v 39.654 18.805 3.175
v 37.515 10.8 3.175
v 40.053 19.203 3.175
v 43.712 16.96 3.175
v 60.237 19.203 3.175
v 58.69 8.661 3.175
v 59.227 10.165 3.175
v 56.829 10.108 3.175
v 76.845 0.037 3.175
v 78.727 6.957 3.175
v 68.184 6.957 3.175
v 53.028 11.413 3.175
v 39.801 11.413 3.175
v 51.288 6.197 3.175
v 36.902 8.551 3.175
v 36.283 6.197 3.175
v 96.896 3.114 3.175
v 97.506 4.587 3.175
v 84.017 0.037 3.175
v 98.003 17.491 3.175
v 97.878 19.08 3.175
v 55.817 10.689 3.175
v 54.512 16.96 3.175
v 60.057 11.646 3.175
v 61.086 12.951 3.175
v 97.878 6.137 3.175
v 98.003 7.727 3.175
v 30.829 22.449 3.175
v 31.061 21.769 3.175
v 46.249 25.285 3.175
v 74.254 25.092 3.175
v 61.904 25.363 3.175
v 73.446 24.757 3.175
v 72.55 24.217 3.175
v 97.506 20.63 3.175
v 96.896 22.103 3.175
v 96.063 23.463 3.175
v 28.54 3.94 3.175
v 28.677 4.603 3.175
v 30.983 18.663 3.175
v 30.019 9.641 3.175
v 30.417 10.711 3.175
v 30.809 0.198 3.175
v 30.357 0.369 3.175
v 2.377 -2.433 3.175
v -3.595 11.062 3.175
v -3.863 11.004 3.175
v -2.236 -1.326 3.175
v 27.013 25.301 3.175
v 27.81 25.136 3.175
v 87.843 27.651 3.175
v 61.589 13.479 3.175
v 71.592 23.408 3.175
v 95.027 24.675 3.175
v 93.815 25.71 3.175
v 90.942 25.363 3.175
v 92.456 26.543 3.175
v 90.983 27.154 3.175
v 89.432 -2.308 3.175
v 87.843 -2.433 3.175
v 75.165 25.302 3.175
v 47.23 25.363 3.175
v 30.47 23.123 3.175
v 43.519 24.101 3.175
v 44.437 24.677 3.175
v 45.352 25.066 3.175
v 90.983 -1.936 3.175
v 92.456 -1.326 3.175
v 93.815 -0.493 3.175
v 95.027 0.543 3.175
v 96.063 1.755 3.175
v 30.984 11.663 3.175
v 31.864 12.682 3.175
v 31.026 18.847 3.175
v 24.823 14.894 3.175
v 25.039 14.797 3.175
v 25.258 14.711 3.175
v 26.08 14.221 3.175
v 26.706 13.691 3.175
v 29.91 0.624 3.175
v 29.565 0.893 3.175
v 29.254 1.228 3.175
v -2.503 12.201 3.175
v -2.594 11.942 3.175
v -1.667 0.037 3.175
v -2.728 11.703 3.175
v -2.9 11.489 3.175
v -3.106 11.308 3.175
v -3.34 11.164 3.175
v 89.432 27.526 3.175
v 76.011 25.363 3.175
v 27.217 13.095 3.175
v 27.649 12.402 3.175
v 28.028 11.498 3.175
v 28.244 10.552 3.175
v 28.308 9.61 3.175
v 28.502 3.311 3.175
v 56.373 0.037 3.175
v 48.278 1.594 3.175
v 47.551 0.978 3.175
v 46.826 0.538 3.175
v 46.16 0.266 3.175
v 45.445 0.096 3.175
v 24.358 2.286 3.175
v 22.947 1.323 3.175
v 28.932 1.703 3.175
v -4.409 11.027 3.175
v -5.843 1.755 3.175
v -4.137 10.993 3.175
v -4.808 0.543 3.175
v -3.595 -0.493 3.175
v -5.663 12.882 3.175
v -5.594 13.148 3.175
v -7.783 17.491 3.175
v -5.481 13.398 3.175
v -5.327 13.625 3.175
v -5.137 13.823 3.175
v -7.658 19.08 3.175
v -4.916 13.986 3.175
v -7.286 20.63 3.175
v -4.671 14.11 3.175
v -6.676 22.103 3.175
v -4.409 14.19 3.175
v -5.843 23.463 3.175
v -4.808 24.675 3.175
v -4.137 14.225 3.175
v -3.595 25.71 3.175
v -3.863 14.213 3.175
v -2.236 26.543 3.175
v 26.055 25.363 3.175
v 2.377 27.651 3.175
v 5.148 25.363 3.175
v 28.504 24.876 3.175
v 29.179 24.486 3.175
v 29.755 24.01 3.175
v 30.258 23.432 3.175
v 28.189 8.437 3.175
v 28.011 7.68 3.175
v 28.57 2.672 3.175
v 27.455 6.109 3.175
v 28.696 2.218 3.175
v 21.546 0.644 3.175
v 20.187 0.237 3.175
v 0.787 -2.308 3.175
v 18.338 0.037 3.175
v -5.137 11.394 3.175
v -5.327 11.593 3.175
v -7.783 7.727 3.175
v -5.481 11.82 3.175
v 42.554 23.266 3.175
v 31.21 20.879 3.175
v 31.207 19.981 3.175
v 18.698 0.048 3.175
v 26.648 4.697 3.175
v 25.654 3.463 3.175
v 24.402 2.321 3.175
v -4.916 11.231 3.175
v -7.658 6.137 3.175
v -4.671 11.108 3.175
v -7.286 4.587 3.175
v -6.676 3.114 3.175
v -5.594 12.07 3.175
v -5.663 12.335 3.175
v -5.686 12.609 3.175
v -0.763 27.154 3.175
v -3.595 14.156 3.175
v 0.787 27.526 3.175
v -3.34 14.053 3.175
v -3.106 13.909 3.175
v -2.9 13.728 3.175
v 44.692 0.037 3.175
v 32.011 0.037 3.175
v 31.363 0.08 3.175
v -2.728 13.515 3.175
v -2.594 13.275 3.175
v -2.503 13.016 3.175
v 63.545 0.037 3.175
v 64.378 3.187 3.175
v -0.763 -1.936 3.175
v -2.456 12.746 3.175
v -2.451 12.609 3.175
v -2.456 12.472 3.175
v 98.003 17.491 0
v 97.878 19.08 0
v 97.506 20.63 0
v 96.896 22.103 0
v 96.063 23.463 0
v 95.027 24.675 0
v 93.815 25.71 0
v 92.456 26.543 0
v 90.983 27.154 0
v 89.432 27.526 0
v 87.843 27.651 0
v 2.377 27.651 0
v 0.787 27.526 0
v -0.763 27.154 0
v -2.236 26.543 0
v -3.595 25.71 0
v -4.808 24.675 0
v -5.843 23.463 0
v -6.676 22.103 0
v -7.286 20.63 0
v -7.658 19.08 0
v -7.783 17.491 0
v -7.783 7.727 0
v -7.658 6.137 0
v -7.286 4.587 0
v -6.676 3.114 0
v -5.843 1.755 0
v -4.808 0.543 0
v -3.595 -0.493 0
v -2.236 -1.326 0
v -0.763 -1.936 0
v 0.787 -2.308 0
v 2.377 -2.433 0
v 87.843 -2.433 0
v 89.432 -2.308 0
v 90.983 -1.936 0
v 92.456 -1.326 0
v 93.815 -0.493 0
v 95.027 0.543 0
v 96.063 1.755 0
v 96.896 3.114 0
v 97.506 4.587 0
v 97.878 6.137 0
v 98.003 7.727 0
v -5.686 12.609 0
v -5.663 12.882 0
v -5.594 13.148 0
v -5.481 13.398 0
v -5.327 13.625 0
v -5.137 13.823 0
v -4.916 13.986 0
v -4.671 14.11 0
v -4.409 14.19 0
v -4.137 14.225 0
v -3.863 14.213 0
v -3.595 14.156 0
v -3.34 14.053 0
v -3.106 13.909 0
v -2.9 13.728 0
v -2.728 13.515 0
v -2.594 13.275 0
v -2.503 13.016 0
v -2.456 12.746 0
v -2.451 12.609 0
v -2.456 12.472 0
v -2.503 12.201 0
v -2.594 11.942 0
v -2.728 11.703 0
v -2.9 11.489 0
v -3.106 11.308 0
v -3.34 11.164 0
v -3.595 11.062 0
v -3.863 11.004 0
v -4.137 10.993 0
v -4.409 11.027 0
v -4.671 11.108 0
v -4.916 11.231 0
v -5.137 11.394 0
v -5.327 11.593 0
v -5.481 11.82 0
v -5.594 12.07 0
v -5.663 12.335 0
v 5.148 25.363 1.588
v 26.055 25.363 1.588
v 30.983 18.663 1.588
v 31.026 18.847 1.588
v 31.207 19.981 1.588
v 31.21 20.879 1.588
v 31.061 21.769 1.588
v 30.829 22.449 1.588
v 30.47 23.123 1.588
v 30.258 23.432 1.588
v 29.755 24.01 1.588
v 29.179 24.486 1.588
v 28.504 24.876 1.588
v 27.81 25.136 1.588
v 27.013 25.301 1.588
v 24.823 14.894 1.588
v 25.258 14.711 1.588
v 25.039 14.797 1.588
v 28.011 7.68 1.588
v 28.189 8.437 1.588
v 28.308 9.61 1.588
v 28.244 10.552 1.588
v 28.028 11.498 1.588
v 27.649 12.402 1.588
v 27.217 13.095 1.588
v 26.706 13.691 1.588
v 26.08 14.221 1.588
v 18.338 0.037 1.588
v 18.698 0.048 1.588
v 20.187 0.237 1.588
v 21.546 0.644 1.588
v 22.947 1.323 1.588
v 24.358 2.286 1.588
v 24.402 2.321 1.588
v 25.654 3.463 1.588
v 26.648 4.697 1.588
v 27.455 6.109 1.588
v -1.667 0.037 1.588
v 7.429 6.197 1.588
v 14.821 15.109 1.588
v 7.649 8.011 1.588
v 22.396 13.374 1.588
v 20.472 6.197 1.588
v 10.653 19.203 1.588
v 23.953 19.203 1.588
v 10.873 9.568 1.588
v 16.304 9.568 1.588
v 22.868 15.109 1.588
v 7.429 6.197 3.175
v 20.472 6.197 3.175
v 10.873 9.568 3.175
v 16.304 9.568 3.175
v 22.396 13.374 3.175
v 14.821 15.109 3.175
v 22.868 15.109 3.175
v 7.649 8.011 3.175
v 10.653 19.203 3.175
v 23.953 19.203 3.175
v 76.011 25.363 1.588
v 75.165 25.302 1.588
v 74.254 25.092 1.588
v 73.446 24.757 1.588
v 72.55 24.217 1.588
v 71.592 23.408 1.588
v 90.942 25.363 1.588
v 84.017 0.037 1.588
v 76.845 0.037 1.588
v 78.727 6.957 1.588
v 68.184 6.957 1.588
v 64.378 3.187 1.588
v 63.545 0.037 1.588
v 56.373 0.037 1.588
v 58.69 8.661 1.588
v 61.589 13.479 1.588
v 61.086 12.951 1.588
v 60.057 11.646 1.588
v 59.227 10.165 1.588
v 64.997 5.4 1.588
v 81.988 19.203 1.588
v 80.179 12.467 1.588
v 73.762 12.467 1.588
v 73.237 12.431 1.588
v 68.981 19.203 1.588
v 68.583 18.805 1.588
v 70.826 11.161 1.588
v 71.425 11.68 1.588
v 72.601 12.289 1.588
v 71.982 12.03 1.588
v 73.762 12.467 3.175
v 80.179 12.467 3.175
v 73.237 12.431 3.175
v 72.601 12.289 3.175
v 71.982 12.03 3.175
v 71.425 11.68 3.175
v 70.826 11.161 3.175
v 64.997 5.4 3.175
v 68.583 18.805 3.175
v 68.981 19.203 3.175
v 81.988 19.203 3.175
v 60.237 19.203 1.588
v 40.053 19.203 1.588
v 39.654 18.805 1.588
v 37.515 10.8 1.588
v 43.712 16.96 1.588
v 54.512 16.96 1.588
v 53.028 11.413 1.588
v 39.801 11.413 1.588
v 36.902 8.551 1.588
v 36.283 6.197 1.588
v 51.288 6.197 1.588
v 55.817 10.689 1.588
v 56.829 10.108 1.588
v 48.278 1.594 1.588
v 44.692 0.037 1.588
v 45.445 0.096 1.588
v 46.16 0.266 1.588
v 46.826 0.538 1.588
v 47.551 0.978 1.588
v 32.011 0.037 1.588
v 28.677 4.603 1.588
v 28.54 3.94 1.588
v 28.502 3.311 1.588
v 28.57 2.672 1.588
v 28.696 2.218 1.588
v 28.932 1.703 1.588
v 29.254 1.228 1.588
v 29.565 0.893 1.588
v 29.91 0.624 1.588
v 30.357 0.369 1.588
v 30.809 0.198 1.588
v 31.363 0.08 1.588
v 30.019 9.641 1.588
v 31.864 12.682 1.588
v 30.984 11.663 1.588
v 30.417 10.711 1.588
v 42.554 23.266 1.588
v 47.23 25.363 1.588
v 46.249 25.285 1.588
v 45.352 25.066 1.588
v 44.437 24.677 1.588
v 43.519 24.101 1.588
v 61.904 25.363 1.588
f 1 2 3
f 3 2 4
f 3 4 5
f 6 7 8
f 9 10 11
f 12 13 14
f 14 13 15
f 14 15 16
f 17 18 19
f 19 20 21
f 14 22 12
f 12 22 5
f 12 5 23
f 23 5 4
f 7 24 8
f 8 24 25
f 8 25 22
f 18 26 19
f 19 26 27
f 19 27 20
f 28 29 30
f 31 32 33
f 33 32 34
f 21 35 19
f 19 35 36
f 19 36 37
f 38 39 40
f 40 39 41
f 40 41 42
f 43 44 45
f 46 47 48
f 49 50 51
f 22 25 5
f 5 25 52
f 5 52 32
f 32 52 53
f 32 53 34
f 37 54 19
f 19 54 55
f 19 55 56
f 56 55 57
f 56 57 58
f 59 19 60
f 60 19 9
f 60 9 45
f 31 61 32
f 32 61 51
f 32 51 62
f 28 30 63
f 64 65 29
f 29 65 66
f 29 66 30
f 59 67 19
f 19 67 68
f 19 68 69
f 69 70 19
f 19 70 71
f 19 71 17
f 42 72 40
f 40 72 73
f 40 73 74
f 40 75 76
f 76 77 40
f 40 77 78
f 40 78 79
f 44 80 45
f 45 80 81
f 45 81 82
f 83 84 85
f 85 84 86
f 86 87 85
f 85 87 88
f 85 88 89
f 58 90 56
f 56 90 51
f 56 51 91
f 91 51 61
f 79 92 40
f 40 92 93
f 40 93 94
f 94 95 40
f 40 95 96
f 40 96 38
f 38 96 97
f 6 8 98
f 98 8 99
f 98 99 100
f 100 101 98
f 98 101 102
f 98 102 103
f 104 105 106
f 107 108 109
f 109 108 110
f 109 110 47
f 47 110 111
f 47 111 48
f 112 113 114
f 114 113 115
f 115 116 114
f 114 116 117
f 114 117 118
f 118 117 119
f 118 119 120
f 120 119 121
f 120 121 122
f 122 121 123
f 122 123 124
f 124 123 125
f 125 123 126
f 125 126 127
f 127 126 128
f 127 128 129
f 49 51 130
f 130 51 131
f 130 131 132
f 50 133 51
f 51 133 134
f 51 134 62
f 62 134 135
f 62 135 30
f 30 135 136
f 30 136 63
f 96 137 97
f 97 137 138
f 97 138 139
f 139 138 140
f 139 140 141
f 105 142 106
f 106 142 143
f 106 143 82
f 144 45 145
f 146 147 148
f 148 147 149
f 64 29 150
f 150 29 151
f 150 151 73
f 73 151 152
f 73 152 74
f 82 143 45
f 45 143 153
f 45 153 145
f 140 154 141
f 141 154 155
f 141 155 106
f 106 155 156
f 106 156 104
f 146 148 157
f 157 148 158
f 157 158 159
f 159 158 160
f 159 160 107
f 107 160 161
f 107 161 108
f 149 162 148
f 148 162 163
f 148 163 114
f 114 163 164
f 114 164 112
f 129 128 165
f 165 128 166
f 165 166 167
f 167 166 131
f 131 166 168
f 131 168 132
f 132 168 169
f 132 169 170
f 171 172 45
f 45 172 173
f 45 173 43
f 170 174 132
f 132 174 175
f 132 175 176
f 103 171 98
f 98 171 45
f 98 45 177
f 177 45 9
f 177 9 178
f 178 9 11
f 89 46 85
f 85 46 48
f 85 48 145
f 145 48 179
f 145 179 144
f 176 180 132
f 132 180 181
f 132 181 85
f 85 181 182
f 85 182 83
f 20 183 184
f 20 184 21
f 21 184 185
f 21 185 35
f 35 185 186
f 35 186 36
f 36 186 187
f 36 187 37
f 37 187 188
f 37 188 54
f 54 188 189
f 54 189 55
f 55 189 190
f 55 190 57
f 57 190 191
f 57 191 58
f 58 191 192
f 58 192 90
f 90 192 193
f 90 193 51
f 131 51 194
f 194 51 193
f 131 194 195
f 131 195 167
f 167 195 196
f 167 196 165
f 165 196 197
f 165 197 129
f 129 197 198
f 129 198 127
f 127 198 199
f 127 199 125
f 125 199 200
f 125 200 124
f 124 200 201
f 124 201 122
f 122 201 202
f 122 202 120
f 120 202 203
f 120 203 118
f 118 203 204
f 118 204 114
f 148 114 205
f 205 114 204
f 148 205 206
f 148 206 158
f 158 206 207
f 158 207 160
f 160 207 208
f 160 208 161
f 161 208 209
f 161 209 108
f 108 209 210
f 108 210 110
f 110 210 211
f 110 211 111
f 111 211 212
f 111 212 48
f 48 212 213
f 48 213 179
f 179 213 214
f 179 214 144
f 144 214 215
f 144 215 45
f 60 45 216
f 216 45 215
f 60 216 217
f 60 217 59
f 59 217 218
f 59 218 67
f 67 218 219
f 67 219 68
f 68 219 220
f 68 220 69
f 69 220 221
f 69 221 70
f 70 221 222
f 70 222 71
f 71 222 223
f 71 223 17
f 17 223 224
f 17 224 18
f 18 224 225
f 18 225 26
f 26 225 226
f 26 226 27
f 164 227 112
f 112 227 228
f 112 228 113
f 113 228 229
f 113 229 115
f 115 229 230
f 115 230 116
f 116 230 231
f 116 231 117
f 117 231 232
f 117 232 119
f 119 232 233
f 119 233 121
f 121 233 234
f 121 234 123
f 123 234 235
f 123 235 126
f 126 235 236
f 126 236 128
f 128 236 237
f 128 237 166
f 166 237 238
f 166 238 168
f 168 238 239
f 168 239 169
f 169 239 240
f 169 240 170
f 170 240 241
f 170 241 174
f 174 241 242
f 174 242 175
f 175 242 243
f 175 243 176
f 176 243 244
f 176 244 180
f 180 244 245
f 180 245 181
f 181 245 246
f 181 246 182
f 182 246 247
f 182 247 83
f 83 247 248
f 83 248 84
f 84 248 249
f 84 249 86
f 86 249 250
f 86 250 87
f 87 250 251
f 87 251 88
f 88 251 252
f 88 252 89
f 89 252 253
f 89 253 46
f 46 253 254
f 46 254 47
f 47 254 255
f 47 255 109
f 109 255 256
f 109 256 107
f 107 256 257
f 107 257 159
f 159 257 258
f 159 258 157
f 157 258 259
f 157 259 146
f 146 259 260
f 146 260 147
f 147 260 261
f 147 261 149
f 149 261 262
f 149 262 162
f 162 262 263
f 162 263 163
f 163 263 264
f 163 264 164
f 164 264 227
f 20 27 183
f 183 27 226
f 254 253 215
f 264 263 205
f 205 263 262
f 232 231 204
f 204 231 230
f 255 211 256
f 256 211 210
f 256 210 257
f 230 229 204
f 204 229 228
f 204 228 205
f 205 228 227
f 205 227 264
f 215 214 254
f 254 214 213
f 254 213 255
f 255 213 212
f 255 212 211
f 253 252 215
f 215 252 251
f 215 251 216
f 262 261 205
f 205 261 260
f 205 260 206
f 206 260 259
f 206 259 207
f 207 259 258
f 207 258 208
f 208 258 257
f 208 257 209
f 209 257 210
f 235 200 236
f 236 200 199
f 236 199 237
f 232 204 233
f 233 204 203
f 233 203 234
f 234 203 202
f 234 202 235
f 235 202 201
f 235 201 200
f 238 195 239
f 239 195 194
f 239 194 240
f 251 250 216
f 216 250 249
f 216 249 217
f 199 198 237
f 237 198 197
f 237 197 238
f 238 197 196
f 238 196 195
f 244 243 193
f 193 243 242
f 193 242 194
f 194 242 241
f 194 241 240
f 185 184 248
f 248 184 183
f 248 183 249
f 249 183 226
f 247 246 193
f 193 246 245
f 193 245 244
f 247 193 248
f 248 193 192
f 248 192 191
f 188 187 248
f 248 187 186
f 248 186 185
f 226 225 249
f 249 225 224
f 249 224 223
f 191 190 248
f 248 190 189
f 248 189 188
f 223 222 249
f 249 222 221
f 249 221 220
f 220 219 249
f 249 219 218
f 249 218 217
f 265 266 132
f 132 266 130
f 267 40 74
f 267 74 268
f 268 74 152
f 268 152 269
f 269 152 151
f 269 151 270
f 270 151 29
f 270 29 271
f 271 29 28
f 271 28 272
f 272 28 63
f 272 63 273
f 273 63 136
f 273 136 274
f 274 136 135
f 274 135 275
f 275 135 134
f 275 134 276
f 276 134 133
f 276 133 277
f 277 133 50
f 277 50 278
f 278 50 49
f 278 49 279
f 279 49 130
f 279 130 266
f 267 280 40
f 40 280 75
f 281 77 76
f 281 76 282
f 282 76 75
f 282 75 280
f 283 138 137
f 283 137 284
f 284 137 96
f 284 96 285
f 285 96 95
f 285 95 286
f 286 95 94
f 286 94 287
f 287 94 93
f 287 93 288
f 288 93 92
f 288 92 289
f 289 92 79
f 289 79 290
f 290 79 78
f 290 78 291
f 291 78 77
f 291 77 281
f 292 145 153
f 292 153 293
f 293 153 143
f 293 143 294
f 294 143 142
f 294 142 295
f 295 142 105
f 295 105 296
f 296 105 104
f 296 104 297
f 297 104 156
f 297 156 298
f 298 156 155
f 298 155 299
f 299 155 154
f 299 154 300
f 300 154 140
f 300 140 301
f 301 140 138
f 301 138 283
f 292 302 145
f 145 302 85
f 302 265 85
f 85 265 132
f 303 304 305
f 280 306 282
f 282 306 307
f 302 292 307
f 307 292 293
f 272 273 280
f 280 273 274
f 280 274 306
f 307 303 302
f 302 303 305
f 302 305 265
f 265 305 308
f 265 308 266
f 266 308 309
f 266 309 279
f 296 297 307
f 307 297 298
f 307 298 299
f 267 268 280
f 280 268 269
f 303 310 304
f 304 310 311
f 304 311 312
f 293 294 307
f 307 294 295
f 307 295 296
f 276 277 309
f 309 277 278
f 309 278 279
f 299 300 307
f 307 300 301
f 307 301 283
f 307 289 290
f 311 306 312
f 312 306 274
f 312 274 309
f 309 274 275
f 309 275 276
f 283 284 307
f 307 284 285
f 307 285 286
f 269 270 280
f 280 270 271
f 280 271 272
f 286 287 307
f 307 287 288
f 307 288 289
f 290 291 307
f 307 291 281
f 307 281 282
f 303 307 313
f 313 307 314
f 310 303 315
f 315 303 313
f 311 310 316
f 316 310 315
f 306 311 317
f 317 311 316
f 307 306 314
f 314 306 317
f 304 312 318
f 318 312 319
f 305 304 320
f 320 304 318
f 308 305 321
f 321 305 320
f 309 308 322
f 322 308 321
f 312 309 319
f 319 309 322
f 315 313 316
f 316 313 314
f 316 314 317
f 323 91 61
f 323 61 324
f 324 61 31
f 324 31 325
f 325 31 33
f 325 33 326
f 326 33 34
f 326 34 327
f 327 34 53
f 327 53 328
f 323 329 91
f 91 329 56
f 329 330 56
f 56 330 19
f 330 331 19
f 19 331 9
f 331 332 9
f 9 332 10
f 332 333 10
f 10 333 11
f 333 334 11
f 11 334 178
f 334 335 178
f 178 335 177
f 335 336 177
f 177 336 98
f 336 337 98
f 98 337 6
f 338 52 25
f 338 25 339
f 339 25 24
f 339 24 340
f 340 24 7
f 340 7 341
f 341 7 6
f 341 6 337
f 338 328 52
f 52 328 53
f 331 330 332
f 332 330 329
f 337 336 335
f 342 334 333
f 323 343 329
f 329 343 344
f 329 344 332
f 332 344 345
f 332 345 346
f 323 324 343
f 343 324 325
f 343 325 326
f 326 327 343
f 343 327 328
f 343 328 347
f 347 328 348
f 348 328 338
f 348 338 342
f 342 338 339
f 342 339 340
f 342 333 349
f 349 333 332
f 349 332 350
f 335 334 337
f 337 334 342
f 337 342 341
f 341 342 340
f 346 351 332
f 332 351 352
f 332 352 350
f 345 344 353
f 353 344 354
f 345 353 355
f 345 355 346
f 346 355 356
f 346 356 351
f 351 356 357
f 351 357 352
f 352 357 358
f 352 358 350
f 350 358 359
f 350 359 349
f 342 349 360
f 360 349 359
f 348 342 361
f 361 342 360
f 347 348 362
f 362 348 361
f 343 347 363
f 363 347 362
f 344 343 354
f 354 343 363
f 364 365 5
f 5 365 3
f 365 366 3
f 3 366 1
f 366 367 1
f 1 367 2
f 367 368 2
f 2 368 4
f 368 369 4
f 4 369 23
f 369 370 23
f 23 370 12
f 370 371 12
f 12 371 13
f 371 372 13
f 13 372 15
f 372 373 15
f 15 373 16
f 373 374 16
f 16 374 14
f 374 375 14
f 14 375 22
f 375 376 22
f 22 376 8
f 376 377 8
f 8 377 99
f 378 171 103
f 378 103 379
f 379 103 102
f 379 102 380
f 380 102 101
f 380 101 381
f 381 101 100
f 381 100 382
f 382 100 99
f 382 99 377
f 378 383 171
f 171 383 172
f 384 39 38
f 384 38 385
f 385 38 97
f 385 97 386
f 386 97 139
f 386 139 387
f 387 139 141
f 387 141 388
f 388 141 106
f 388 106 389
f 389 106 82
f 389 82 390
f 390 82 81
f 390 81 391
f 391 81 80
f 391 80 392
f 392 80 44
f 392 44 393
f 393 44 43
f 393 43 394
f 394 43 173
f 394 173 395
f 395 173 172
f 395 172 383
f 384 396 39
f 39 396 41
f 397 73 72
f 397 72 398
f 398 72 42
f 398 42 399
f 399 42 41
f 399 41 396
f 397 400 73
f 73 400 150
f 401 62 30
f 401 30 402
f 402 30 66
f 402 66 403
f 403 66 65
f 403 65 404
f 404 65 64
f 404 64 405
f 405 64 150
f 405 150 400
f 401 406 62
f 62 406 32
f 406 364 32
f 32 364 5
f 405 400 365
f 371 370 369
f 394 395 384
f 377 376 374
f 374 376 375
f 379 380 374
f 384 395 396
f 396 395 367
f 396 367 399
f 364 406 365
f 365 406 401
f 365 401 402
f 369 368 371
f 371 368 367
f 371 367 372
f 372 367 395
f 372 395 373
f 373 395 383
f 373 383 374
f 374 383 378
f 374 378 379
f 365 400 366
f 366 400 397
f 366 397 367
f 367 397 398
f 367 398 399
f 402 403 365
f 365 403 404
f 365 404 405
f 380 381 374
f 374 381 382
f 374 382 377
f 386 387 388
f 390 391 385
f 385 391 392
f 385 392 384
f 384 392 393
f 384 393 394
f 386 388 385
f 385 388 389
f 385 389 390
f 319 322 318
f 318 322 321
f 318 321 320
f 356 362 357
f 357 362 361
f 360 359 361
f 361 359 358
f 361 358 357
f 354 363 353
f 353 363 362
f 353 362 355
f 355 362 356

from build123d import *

# Parameters (mm, degrees)
SKETCH1_R           = 1.617686351
BOSS_EXTRUDE1_DEPTH = 3.175
CUT_EXTRUDE1_DEPTH  = 1.5875


with BuildPart() as part:
    # Sketch1 → Boss-Extrude1 (new body)
    with BuildSketch(Plane.XY):
        with BuildLine():
            Line((2.376512113, 27.65079512), (87.842998078, 27.65079512))
            ThreePointArc((87.842998078, 27.65079512), (95.027202975, 24.675000017), (98.002998078, 17.49079512))
            Line((98.002998078, 17.49079512), (98.002998078, 7.726780525))
            ThreePointArc((98.002998078, 7.726780525), (95.027202975, 0.542575628), (87.842998078, -2.433219475))
            Line((87.842998078, -2.433219475), (2.376512113, -2.433219475))
            ThreePointArc((2.376512113, -2.433219475), (-4.807692784, 0.542575628), (-7.783487887, 7.726780525))
            Line((-7.783487887, 7.726780525), (-7.783487887, 17.49079512))
            ThreePointArc((-7.783487887, 17.49079512), (-4.807692784, 24.675000017), (2.376512113, 27.65079512))
        make_face()
        with Locations((-4.068268159, 12.608787822)):
            Circle(SKETCH1_R, mode=Mode.SUBTRACT)
    extrude(amount=BOSS_EXTRUDE1_DEPTH)

    # Sketch2 → Cut-Extrude1 (cut)
    # profile 1 of 3: a face of its own
    with BuildSketch(Plane.XY.offset(3.175)):
        with BuildLine():
            add(Edge.make_bspline(
                [(26.055314757, 25.363302374), (26.281041178, 25.357148606), (26.720344033, 25.345172305), (27.358603179, 25.255576736), (27.954181106, 25.10565776), (28.506593472, 24.887414053), (29.01635882, 24.61026015), (29.483989025, 24.268912351), (29.909556765, 23.870244327), (30.286214231, 23.412653315), (30.607890769, 22.914633219), (30.869796512, 22.384371241), (31.05896534, 21.825349006), (31.177064683, 21.240476881), (31.238829311, 20.630578255), (31.216595671, 19.996303633), (31.140690223, 19.333888525), (31.036825384, 18.891448023), (30.983281734, 18.663364293)],
                knots=[0, 0, 0, 0, 1.104647112, 2.14983532, 3.14775057, 4.103991838, 5.04949864, 5.980264506, 6.930364641, 7.896350518, 8.873894228, 9.826455567, 10.784034957, 11.753687545, 12.741876869, 13.777217861, 14.854127416, 16, 16, 16, 16], degree=3))
            Line((30.983281734, 18.663364293), (24.823323013, 14.893993808))
            add(Edge.make_bspline(
                [(24.823323013, 14.893993808), (24.913627964, 14.852436986), (25.056727556, 14.786584956), (25.204086092, 14.731009487), (25.258452012, 14.710505676)],
                knots=[0, 0, 0, 0, 1.262127295, 2, 2, 2, 2], degree=3))
            add(Edge.make_bspline(
                [(25.258452012, 14.710505676), (25.408658011, 14.633015541), (25.70455598, 14.480364025), (26.115294044, 14.203511612), (26.494533839, 13.898795938), (26.842207753, 13.563435468), (27.152694985, 13.192982522), (27.431219321, 12.792771569), (27.67927879, 12.362334709), (27.886089668, 11.901078686), (28.060682724, 11.422012006), (28.186061, 10.924600148), (28.269482345, 10.415995768), (28.312768514, 9.893514579), (28.306836135, 9.356553203), (28.251637963, 8.806740636), (28.160254496, 8.243184587), (28.061167889, 7.870056205), (28.010773994, 7.680288958)],
                knots=[0, 0, 0, 0, 0.984435104, 1.939285714, 2.881007598, 3.817426453, 4.749903878, 5.693661681, 6.656357472, 7.640950646, 8.636494269, 9.624663586, 10.626026113, 11.637696297, 12.67668649, 13.751023199, 14.856205644, 16, 16, 16, 16], degree=3))
            add(Edge.make_bspline(
                [(28.010773994, 7.680288958), (27.934336699, 7.418635325), (27.781985703, 6.897120378), (27.483880814, 6.140182715), (27.111873403, 5.418274722), (26.680602198, 4.723985098), (26.188457087, 4.059016869), (25.632410614, 3.42464569), (25.013362966, 2.8218799), (24.336555177, 2.259555831), (23.632617641, 1.73501911), (22.90194296, 1.286167719), (22.165575056, 0.899844078), (21.419750266, 0.582322921), (20.662474561, 0.341850589), (19.896429331, 0.167011128), (19.120780451, 0.059173369), (18.599040207, 0.044186513), (18.338328173, 0.036697626)],
                knots=[0, 0, 0, 0, 0.992207688, 1.977618791, 2.956517026, 3.945270844, 4.9506118, 5.965172583, 7.01356654, 8.093011568, 9.167098768, 10.207118156, 11.211733991, 12.192594754, 13.154449955, 14.10064625, 15.050898635, 16, 16, 16, 16], degree=3))
            Line((18.338328173, 0.036697626), (-1.667120743, 0.036697626))
            Line((-1.667120743, 0.036697626), (5.148152735, 25.363302374))
            Line((5.148152735, 25.363302374), (26.055314757, 25.363302374))
        make_face()
        Polygon((20.472033024, 6.196656347), (22.396037152, 13.373663571), (16.304231166, 9.567595459), (10.872982456, 9.567595459), (7.428648091, 6.196656347), align=None, mode=Mode.SUBTRACT)
        Polygon((22.867863777, 15.108937049), (23.953065015, 19.203343653), (10.652796698, 19.203343653), (7.648833849, 8.010567595), (14.820598555, 15.108937049), align=None, mode=Mode.SUBTRACT)
    # profile 2 of 3: a face of its own
    with BuildSketch(Plane.XY.offset(3.175)):
        with BuildLine():
            Line((40.052837977, 19.203343653), (39.654406605, 18.804912281))
            Line((39.654406605, 18.804912281), (37.515459236, 10.799587203))
            Line((37.515459236, 10.799587203), (43.712115583, 16.959545924))
            Line((43.712115583, 16.959545924), (54.511702786, 16.959545924))
            Line((54.511702786, 16.959545924), (53.028070175, 11.412961816))
            Line((53.028070175, 11.412961816), (39.80119711, 11.412961816))
            Line((39.80119711, 11.412961816), (36.902084623, 8.550546956))
            Line((36.902084623, 8.550546956), (36.283467492, 6.196656347))
            Line((36.283467492, 6.196656347), (51.28755418, 6.196656347))
            Line((51.28755418, 6.196656347), (55.817089783, 10.689494324))
            Line((55.817089783, 10.689494324), (56.828895769, 10.107574819))
            Line((56.828895769, 10.107574819), (48.278348813, 1.59372549))
            add(Edge.make_bspline(
                [(48.278348813, 1.59372549), (48.146238635, 1.46854593), (47.88717571, 1.223073677), (47.463918948, 0.909946193), (47.033190065, 0.640669228), (46.59089137, 0.416443393), (46.132411822, 0.249897844), (45.663767632, 0.128735888), (45.18249618, 0.052398669), (44.857011314, 0.041969808), (44.69246646, 0.036697626)],
                knots=[0, 0, 0, 0, 1.087710149, 2.132957327, 3.142311131, 4.123953504, 5.092881289, 6.053713067, 7.016078678, 8, 8, 8, 8], degree=3))
            Line((44.69246646, 0.036697626), (32.010815273, 0.036697626))
            add(Edge.make_bspline(
                [(32.010815273, 0.036697626), (31.858553331, 0.040498566), (31.561404624, 0.047916336), (31.12901049, 0.112299235), (30.724143119, 0.215813593), (30.34795697, 0.362171558), (30.00473747, 0.556447691), (29.68026271, 0.779177165), (29.39172657, 1.055755752), (29.136150439, 1.370039707), (28.916823334, 1.712741424), (28.744197554, 2.078286326), (28.60860469, 2.456433819), (28.533199597, 2.856014145), (28.494863315, 3.270534693), (28.507441143, 3.702944694), (28.564324089, 4.151146712), (28.63851974, 4.4497704), (28.676573787, 4.602930857)],
                knots=[0, 0, 0, 0, 1.094945795, 2.136855229, 3.137044923, 4.096584279, 5.030749513, 5.969051044, 6.920650617, 7.894578144, 8.878114772, 9.839711021, 10.797931648, 11.759527897, 12.756631189, 13.787866602, 14.865423694, 16, 16, 16, 16], degree=3))
            Line((28.676573787, 4.602930857), (30.018658411, 9.640990712))
            add(Edge.make_bspline(
                [(30.018658411, 9.640990712), (30.105903319, 9.92074967), (30.280853255, 10.481743003), (30.707081382, 11.263251403), (31.216779073, 12.016946207), (31.645281289, 12.457007159), (31.864024768, 12.681651187)],
                knots=[0, 0, 0, 0, 0.975136166, 1.955415087, 2.956272335, 4, 4, 4, 4], degree=3))
            Line((31.864024768, 12.681651187), (42.553519092, 23.26629515))
            add(Edge.make_bspline(
                [(42.553519092, 23.26629515), (42.728913539, 23.433821304), (43.070994593, 23.760556411), (43.621916797, 24.186341546), (44.183374604, 24.554272478), (44.766535305, 24.843767238), (45.358833813, 25.082449973), (45.970393028, 25.241335998), (46.595330871, 25.346832444), (47.017966502, 25.357802691), (47.229845201, 25.363302374)],
                knots=[0, 0, 0, 0, 1.104987577, 2.155115633, 3.169368792, 4.159784375, 5.118388166, 6.074904324, 7.034897349, 8, 8, 8, 8], degree=3))
            Line((47.229845201, 25.363302374), (61.903653251, 25.363302374))
            Line((61.903653251, 25.363302374), (60.236532508, 19.203343653))
            Line((60.236532508, 19.203343653), (40.052837977, 19.203343653))
        make_face()
    # profile 3 of 3: a face of its own
    with BuildSketch(Plane.XY.offset(3.175)):
        with BuildLine():
            Line((76.01126935, 25.363302374), (90.941960784, 25.363302374))
            Line((90.941960784, 25.363302374), (84.016594427, 0.036697626))
            Line((84.016594427, 0.036697626), (76.844829721, 0.036697626))
            Line((76.844829721, 0.036697626), (78.726893705, 6.956821465))
            Line((78.726893705, 6.956821465), (68.184189886, 6.956821465))
            Line((68.184189886, 6.956821465), (64.378121775, 3.18745098))
            Line((64.378121775, 3.18745098), (63.544561404, 0.036697626))
            Line((63.544561404, 0.036697626), (56.372796698, 0.036697626))
            Line((56.372796698, 0.036697626), (58.68998968, 8.660639835))
            add(Edge.make_bspline(
                [(58.68998968, 8.660639835), (58.755206826, 8.881790357), (58.885530435, 9.32371608), (59.134167271, 9.97030979), (59.42672045, 10.600153997), (59.771647631, 11.211465097), (60.158176901, 11.807063633), (60.588878909, 12.38650539), (61.069376559, 12.943271893), (61.414284452, 13.298477026), (61.589102167, 13.478513932)],
                knots=[0, 0, 0, 0, 0.972188851, 1.942727767, 2.918792729, 3.89888478, 4.900660299, 5.911935627, 6.941657613, 8, 8, 8, 8], degree=3))
            Line((61.589102167, 13.478513932), (71.591826625, 23.407843137))
            add(Edge.make_bspline(
                [(71.591826625, 23.407843137), (71.757107834, 23.56270533), (72.081611644, 23.866753032), (72.601980127, 24.266531398), (73.138947216, 24.602237151), (73.684800305, 24.883050108), (74.246444332, 25.101729813), (74.823529255, 25.252414119), (75.414191387, 25.344058862), (75.811733587, 25.35687144), (76.01126935, 25.363302374)],
                knots=[0, 0, 0, 0, 1.09520327, 2.15026038, 3.168190723, 4.15492977, 5.115689715, 6.0773418, 7.034972711, 8, 8, 8, 8], degree=3))
        make_face()
        with BuildLine():
            Line((80.179071207, 12.466707946), (81.987739938, 19.203343653))
            Line((81.987739938, 19.203343653), (68.981052632, 19.203343653))
            Line((68.981052632, 19.203343653), (68.582621259, 18.804912281))
            Line((68.582621259, 18.804912281), (64.996738906, 5.399793602))
            Line((64.996738906, 5.399793602), (70.826418989, 11.161320949))
            add(Edge.make_bspline(
                [(70.826418989, 11.161320949), (70.934905254, 11.264494776), (71.148060273, 11.467211858), (71.489484319, 11.734822191), (71.842666884, 11.964098761), (72.208262313, 12.144359196), (72.580718442, 12.291666427), (72.965176253, 12.387949636), (73.359703622, 12.455328131), (73.6273836, 12.462895723), (73.762229102, 12.466707946)],
                knots=[0, 0, 0, 0, 1.088018936, 2.137751703, 3.149265309, 4.143636785, 5.096896491, 6.055307392, 7.020348651, 8, 8, 8, 8], degree=3))
            Line((73.762229102, 12.466707946), (80.179071207, 12.466707946))
        make_face(mode=Mode.SUBTRACT)
    extrude(amount=-CUT_EXTRUDE1_DEPTH, mode=Mode.SUBTRACT)


solid = part.part
